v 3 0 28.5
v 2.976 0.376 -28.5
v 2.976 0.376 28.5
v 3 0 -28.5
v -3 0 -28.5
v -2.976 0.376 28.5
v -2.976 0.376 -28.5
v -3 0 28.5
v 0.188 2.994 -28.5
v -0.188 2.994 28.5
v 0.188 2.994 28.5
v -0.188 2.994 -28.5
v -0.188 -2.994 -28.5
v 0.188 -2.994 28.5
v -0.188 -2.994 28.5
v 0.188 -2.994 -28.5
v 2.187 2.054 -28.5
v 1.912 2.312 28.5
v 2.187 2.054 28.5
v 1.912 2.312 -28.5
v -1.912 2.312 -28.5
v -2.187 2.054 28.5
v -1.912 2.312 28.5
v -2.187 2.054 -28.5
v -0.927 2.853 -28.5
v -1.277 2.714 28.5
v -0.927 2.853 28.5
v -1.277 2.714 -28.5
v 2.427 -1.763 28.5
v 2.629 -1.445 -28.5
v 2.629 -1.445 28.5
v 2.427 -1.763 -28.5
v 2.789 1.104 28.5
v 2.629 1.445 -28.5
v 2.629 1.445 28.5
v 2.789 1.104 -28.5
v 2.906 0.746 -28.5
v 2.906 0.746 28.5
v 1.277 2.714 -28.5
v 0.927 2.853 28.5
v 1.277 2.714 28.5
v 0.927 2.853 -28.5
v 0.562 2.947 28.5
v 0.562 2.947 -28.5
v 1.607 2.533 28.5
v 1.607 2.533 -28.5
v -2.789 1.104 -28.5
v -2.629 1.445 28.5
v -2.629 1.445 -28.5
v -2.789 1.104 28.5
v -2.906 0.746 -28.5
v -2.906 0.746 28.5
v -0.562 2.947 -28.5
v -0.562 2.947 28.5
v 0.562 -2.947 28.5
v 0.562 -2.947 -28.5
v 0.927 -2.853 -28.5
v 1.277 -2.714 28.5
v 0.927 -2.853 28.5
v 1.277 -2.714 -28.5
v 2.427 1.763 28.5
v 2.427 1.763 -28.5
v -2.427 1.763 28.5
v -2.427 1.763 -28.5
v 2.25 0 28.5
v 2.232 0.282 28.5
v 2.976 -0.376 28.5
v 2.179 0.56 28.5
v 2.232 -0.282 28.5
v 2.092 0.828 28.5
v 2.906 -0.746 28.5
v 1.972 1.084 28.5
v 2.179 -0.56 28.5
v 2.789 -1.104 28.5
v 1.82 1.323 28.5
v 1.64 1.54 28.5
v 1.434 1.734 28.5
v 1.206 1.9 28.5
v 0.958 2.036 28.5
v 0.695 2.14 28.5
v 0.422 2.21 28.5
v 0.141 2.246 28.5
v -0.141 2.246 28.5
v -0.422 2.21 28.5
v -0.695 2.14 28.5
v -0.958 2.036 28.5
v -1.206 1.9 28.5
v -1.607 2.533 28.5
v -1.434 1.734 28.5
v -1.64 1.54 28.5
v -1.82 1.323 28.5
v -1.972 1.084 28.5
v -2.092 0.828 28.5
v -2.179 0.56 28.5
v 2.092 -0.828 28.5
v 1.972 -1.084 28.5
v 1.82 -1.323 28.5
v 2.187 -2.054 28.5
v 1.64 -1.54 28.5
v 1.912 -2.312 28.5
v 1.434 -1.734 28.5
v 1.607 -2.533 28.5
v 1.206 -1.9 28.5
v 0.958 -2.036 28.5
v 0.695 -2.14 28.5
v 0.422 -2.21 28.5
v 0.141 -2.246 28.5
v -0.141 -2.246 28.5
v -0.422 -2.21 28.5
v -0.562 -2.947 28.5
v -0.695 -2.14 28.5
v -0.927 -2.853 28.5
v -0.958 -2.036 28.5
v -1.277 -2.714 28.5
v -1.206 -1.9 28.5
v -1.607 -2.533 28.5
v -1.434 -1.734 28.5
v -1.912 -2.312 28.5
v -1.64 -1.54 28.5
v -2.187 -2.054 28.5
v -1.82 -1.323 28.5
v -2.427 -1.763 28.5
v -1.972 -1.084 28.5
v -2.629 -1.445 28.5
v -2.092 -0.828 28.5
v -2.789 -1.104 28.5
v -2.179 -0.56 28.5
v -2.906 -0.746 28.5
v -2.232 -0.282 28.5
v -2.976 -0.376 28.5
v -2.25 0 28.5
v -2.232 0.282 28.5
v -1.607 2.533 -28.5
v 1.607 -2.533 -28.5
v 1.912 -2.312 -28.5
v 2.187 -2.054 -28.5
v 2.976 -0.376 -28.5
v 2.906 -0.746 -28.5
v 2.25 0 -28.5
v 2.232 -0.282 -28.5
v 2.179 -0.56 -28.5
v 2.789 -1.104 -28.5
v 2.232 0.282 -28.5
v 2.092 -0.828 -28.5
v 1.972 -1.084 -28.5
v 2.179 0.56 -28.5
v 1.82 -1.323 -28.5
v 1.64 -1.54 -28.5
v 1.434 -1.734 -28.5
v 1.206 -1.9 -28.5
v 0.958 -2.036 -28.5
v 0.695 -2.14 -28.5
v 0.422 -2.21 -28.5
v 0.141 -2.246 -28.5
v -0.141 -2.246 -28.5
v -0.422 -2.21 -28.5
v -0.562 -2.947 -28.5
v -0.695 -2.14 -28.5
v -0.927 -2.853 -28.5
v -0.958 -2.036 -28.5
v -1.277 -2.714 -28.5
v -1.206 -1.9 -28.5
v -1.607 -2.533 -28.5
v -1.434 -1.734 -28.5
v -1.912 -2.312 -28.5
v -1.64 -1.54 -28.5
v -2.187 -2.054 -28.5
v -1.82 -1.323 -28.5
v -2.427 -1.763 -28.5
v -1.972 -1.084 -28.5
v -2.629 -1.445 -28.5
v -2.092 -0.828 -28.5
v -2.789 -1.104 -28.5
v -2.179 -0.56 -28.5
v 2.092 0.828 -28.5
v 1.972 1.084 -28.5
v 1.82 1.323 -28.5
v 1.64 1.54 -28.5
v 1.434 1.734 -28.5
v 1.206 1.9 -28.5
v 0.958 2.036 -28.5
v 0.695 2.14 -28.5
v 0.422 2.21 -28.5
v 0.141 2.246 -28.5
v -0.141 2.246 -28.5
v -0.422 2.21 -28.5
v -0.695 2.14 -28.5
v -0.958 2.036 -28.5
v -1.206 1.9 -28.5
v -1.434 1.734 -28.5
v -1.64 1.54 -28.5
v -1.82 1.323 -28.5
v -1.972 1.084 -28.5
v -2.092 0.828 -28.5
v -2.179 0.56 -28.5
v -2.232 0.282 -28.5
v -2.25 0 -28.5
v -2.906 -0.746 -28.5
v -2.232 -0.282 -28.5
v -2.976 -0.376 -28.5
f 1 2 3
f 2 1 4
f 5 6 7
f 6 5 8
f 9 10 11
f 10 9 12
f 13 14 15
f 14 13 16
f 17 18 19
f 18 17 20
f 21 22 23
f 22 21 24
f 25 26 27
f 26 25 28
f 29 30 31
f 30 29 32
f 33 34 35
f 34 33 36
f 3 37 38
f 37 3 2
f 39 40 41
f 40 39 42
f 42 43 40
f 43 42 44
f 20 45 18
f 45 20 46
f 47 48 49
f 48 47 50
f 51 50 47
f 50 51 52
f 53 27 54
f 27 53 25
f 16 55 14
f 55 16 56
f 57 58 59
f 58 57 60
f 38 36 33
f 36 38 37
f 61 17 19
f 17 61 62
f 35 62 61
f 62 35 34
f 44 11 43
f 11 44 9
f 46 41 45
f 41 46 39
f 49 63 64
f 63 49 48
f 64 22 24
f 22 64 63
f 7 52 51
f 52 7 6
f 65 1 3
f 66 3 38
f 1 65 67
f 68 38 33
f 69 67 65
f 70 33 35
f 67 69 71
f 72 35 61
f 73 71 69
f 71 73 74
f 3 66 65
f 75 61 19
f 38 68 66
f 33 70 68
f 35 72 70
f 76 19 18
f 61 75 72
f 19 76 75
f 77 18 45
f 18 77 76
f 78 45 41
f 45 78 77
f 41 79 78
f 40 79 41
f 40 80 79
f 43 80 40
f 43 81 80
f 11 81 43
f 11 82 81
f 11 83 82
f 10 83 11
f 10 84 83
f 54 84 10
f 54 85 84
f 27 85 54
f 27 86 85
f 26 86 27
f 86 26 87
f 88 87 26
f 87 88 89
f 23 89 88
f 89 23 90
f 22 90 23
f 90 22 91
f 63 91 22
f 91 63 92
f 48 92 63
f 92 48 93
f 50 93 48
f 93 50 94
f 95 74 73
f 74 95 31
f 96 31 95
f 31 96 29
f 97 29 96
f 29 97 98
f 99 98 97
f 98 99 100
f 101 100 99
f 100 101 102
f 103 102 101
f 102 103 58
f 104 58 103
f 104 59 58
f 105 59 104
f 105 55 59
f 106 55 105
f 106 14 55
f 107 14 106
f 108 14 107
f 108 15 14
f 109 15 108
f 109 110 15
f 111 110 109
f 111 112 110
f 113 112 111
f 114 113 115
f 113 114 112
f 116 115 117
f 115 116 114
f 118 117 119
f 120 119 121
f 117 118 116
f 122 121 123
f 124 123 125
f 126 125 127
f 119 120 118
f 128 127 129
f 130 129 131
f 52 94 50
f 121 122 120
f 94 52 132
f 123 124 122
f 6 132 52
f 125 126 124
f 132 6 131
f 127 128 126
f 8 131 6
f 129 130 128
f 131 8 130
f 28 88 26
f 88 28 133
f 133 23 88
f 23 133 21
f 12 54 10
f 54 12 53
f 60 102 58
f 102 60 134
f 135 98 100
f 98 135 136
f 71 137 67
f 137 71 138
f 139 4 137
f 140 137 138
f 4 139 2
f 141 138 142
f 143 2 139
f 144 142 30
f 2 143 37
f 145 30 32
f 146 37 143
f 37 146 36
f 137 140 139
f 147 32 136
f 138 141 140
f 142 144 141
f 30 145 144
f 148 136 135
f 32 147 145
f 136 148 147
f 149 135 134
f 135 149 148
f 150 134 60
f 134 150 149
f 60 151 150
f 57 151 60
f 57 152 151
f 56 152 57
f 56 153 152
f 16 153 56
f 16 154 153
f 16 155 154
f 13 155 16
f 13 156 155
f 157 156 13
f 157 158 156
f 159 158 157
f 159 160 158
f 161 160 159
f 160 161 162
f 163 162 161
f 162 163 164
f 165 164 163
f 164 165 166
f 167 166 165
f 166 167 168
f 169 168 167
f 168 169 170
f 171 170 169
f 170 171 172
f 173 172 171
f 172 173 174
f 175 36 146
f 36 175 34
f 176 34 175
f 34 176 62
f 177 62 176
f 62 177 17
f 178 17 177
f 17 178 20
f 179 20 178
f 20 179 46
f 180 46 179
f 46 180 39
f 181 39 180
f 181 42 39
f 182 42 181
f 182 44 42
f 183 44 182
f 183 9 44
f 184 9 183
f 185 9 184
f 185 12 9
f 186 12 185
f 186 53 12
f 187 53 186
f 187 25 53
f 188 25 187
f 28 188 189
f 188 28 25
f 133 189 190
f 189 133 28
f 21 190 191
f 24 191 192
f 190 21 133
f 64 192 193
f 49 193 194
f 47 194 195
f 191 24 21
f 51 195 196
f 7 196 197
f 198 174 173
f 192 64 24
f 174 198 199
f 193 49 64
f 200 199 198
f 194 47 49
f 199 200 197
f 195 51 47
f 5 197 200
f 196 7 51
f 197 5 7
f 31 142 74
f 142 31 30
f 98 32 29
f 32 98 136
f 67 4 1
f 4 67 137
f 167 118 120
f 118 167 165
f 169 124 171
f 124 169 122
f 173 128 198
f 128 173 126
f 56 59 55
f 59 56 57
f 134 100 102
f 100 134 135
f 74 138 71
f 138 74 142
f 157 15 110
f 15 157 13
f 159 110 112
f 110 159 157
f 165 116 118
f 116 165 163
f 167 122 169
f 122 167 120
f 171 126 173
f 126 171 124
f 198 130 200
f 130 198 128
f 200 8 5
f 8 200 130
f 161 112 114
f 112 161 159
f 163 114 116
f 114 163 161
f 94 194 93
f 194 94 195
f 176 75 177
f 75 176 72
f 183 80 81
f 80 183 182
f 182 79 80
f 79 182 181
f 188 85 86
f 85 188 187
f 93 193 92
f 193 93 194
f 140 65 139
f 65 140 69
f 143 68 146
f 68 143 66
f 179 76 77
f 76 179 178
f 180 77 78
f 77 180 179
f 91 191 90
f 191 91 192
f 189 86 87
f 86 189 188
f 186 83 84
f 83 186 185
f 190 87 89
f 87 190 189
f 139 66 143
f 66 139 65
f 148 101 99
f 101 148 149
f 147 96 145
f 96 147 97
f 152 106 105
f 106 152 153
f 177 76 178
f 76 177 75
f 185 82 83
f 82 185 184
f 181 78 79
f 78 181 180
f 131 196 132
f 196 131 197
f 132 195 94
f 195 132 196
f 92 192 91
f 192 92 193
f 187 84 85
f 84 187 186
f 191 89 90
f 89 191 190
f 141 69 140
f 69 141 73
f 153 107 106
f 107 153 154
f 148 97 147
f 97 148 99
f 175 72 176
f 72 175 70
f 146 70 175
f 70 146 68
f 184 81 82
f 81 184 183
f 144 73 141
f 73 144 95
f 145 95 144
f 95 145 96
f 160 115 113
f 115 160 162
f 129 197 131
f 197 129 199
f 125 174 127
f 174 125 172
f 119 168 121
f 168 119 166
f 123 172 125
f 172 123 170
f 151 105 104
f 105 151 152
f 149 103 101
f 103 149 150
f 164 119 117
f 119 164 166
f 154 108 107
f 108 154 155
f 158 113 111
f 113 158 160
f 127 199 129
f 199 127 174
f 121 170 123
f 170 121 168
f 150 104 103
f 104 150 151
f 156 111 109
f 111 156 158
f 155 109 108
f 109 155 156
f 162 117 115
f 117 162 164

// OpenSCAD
$fn = 50;


difference() {
	union() {
		translate(v = [0, 0, -28.5000000000]) {
			cylinder(h = 57, r = 3.0000000000);
		}
	}
	union() {
		translate(v = [0, 0, -100.0000000000]) {
			cylinder(h = 200, r = 2.2500000000);
		}
	}
}
